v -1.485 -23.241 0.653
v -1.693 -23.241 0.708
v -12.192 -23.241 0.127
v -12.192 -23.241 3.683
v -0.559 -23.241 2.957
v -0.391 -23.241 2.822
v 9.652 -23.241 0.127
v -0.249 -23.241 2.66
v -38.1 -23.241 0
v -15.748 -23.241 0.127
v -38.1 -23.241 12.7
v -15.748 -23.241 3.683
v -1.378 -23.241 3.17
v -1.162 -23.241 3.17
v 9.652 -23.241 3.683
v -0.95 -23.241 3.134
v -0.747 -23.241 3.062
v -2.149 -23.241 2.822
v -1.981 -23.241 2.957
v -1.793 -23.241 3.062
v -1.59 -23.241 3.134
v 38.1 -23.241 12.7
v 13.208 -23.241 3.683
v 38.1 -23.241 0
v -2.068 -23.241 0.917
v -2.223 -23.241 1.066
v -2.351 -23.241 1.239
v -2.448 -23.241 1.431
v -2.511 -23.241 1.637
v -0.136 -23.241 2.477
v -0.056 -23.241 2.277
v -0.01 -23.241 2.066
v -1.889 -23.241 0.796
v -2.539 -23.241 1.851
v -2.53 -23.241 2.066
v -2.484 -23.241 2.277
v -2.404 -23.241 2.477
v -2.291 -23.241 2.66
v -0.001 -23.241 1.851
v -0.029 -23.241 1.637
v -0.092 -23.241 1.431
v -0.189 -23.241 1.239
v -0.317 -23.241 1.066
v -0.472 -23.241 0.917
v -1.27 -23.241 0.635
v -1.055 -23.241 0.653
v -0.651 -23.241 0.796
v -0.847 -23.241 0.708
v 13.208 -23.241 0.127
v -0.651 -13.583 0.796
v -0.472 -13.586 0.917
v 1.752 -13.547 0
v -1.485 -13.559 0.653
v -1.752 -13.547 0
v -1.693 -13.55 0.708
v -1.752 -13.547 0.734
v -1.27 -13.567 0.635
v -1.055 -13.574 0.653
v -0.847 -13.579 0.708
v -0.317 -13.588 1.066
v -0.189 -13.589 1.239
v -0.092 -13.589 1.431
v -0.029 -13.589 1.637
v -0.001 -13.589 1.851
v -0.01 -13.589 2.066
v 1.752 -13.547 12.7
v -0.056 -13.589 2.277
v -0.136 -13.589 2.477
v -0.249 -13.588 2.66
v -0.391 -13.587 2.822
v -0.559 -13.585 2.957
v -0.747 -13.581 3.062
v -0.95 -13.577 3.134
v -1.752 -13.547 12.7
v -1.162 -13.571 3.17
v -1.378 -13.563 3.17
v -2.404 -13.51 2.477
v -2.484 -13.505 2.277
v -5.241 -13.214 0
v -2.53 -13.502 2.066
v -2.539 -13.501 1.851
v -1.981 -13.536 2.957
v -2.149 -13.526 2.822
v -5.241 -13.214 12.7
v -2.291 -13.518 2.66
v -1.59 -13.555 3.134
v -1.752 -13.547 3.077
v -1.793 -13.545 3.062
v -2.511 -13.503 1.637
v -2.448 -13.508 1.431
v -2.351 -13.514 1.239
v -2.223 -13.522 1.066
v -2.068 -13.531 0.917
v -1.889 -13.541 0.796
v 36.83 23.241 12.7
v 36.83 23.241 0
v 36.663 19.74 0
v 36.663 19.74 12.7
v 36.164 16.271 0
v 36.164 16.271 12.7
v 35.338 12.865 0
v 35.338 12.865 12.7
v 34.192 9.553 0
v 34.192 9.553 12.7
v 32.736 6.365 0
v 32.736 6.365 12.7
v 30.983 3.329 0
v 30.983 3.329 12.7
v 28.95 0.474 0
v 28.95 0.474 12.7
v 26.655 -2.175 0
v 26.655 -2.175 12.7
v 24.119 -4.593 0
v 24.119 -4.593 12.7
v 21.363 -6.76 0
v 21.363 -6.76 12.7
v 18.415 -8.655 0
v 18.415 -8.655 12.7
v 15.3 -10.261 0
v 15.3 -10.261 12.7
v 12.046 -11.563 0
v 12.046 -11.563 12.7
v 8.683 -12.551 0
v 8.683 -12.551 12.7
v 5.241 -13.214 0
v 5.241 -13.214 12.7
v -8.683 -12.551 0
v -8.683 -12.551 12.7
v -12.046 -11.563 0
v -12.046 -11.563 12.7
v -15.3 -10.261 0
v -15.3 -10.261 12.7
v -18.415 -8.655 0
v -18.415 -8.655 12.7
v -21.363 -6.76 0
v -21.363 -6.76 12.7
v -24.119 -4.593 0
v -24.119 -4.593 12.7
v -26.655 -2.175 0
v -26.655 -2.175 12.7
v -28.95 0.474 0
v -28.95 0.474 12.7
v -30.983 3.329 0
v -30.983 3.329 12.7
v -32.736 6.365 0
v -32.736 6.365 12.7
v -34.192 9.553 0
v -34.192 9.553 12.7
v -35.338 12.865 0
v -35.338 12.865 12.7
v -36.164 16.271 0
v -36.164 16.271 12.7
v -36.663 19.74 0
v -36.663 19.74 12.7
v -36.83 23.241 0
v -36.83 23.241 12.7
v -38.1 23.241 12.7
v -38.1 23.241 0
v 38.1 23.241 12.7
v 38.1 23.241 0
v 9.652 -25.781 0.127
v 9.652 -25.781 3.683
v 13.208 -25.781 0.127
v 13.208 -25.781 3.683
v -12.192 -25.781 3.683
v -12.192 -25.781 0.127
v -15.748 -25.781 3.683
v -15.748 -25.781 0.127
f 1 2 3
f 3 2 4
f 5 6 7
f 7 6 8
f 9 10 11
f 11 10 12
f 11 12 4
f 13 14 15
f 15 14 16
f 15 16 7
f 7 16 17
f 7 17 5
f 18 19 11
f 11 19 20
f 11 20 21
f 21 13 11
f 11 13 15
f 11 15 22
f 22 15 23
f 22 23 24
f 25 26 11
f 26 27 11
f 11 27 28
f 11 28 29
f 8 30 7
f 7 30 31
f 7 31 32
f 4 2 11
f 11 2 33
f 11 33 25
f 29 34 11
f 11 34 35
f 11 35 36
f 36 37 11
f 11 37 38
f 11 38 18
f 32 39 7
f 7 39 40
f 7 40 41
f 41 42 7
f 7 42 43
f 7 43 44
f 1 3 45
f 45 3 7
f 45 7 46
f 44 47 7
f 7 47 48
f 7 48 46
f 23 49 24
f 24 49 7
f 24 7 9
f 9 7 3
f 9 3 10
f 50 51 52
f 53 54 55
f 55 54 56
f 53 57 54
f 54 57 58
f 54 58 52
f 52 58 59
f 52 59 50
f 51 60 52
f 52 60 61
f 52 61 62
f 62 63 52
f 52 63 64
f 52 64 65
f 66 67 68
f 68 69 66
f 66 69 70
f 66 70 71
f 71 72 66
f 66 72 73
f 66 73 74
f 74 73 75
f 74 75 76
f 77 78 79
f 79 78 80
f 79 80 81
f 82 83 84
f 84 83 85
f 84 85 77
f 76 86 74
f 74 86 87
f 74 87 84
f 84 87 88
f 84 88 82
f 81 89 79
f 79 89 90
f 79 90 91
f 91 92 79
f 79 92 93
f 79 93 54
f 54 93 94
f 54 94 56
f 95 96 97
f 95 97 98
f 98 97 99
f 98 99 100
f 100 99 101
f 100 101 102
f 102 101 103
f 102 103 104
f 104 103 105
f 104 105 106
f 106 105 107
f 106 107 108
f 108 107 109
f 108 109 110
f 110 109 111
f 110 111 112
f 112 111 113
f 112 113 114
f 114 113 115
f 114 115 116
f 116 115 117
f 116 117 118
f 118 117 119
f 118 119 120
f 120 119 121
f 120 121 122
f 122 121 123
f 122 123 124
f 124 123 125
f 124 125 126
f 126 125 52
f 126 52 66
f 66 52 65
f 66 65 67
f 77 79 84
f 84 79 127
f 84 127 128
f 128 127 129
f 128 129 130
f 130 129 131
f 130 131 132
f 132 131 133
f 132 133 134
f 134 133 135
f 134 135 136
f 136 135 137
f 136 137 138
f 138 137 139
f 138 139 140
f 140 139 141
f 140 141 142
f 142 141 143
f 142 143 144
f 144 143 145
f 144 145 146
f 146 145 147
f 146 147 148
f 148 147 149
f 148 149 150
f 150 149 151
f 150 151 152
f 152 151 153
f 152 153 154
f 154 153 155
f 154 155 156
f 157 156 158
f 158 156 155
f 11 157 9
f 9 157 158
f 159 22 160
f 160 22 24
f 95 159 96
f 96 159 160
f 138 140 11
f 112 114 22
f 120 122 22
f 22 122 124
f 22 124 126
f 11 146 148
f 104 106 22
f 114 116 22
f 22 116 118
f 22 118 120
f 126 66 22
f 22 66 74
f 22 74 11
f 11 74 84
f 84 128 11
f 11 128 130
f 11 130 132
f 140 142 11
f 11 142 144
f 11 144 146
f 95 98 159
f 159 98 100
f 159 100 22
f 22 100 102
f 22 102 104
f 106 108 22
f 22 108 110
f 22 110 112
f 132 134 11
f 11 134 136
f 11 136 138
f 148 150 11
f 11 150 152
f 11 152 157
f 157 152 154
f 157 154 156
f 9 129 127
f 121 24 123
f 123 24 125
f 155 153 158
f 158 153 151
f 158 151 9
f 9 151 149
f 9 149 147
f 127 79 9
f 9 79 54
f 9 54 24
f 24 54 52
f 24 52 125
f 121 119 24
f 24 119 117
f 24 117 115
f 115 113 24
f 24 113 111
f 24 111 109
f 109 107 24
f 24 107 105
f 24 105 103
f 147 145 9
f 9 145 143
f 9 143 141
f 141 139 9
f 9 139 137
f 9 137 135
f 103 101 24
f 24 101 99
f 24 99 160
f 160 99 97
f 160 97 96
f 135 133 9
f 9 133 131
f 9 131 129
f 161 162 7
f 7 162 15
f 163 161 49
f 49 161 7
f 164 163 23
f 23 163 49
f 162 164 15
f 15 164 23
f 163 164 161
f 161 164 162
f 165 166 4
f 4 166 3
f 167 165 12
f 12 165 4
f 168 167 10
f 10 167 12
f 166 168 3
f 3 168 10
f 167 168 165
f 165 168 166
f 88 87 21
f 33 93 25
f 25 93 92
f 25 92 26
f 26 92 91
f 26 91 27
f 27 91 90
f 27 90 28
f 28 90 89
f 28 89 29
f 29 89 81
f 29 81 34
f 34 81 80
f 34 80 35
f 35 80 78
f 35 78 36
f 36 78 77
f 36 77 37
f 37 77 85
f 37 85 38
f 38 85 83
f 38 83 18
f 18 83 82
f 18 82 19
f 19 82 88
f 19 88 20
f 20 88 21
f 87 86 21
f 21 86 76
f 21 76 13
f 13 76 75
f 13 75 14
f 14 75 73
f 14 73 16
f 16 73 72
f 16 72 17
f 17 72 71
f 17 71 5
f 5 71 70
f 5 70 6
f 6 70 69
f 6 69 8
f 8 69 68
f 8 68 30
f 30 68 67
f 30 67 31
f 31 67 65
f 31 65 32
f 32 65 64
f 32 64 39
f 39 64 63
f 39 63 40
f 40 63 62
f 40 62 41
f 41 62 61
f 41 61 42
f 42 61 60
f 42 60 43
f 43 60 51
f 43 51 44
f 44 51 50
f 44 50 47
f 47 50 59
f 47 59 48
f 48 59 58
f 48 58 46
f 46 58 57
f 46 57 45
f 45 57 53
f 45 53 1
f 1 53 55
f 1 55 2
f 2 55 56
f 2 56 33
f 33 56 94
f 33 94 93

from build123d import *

# Parameters (mm, degrees)
BOSS_EXTRUDE1_DEPTH = 12.7
SKETCH2_W           = 3.556
SKETCH2_H           = 3.556
BOSS_EXTRUDE2_DEPTH = 2.54
SKETCH3_R           = 1.27
CUT_EXTRUDE1_DEPTH  = 14.986


with BuildPart() as part:
    # Sketch1 → Boss-Extrude1 (new body)
    with BuildSketch(Plane.XY):
        with BuildLine():
            Line((-38.1, 23.241), (-38.1, -23.241))
            Line((-38.1, -23.241), (38.1, -23.241))
            Line((38.1, -23.241), (38.1, 23.241))
            Line((38.1, 23.241), (36.83, 23.241))
            ThreePointArc((36.83, 23.241), (0, -13.589), (-36.83, 23.241))
            Line((-36.83, 23.241), (-38.1, 23.241))
        make_face()
    extrude(amount=BOSS_EXTRUDE1_DEPTH)

    # Sketch2 → Boss-Extrude2 (add)
    with BuildSketch(Plane.XZ.offset(23.241)):
        with Locations((11.43, 1.905)):
            Rectangle(SKETCH2_W, SKETCH2_H)
        with Locations((-13.97, 1.905)):
            Rectangle(SKETCH2_W, SKETCH2_H)
    extrude(amount=BOSS_EXTRUDE2_DEPTH)

    # Sketch3 → Cut-Extrude1 (cut)
    with BuildSketch(Plane(origin=(0, -23.241, 0), x_dir=(-1, 0, 0), z_dir=(0, -1, 0))):
        with Locations((1.27, -1.905)):
            Circle(SKETCH3_R)
    extrude(amount=-CUT_EXTRUDE1_DEPTH, mode=Mode.SUBTRACT)


solid = part.part
